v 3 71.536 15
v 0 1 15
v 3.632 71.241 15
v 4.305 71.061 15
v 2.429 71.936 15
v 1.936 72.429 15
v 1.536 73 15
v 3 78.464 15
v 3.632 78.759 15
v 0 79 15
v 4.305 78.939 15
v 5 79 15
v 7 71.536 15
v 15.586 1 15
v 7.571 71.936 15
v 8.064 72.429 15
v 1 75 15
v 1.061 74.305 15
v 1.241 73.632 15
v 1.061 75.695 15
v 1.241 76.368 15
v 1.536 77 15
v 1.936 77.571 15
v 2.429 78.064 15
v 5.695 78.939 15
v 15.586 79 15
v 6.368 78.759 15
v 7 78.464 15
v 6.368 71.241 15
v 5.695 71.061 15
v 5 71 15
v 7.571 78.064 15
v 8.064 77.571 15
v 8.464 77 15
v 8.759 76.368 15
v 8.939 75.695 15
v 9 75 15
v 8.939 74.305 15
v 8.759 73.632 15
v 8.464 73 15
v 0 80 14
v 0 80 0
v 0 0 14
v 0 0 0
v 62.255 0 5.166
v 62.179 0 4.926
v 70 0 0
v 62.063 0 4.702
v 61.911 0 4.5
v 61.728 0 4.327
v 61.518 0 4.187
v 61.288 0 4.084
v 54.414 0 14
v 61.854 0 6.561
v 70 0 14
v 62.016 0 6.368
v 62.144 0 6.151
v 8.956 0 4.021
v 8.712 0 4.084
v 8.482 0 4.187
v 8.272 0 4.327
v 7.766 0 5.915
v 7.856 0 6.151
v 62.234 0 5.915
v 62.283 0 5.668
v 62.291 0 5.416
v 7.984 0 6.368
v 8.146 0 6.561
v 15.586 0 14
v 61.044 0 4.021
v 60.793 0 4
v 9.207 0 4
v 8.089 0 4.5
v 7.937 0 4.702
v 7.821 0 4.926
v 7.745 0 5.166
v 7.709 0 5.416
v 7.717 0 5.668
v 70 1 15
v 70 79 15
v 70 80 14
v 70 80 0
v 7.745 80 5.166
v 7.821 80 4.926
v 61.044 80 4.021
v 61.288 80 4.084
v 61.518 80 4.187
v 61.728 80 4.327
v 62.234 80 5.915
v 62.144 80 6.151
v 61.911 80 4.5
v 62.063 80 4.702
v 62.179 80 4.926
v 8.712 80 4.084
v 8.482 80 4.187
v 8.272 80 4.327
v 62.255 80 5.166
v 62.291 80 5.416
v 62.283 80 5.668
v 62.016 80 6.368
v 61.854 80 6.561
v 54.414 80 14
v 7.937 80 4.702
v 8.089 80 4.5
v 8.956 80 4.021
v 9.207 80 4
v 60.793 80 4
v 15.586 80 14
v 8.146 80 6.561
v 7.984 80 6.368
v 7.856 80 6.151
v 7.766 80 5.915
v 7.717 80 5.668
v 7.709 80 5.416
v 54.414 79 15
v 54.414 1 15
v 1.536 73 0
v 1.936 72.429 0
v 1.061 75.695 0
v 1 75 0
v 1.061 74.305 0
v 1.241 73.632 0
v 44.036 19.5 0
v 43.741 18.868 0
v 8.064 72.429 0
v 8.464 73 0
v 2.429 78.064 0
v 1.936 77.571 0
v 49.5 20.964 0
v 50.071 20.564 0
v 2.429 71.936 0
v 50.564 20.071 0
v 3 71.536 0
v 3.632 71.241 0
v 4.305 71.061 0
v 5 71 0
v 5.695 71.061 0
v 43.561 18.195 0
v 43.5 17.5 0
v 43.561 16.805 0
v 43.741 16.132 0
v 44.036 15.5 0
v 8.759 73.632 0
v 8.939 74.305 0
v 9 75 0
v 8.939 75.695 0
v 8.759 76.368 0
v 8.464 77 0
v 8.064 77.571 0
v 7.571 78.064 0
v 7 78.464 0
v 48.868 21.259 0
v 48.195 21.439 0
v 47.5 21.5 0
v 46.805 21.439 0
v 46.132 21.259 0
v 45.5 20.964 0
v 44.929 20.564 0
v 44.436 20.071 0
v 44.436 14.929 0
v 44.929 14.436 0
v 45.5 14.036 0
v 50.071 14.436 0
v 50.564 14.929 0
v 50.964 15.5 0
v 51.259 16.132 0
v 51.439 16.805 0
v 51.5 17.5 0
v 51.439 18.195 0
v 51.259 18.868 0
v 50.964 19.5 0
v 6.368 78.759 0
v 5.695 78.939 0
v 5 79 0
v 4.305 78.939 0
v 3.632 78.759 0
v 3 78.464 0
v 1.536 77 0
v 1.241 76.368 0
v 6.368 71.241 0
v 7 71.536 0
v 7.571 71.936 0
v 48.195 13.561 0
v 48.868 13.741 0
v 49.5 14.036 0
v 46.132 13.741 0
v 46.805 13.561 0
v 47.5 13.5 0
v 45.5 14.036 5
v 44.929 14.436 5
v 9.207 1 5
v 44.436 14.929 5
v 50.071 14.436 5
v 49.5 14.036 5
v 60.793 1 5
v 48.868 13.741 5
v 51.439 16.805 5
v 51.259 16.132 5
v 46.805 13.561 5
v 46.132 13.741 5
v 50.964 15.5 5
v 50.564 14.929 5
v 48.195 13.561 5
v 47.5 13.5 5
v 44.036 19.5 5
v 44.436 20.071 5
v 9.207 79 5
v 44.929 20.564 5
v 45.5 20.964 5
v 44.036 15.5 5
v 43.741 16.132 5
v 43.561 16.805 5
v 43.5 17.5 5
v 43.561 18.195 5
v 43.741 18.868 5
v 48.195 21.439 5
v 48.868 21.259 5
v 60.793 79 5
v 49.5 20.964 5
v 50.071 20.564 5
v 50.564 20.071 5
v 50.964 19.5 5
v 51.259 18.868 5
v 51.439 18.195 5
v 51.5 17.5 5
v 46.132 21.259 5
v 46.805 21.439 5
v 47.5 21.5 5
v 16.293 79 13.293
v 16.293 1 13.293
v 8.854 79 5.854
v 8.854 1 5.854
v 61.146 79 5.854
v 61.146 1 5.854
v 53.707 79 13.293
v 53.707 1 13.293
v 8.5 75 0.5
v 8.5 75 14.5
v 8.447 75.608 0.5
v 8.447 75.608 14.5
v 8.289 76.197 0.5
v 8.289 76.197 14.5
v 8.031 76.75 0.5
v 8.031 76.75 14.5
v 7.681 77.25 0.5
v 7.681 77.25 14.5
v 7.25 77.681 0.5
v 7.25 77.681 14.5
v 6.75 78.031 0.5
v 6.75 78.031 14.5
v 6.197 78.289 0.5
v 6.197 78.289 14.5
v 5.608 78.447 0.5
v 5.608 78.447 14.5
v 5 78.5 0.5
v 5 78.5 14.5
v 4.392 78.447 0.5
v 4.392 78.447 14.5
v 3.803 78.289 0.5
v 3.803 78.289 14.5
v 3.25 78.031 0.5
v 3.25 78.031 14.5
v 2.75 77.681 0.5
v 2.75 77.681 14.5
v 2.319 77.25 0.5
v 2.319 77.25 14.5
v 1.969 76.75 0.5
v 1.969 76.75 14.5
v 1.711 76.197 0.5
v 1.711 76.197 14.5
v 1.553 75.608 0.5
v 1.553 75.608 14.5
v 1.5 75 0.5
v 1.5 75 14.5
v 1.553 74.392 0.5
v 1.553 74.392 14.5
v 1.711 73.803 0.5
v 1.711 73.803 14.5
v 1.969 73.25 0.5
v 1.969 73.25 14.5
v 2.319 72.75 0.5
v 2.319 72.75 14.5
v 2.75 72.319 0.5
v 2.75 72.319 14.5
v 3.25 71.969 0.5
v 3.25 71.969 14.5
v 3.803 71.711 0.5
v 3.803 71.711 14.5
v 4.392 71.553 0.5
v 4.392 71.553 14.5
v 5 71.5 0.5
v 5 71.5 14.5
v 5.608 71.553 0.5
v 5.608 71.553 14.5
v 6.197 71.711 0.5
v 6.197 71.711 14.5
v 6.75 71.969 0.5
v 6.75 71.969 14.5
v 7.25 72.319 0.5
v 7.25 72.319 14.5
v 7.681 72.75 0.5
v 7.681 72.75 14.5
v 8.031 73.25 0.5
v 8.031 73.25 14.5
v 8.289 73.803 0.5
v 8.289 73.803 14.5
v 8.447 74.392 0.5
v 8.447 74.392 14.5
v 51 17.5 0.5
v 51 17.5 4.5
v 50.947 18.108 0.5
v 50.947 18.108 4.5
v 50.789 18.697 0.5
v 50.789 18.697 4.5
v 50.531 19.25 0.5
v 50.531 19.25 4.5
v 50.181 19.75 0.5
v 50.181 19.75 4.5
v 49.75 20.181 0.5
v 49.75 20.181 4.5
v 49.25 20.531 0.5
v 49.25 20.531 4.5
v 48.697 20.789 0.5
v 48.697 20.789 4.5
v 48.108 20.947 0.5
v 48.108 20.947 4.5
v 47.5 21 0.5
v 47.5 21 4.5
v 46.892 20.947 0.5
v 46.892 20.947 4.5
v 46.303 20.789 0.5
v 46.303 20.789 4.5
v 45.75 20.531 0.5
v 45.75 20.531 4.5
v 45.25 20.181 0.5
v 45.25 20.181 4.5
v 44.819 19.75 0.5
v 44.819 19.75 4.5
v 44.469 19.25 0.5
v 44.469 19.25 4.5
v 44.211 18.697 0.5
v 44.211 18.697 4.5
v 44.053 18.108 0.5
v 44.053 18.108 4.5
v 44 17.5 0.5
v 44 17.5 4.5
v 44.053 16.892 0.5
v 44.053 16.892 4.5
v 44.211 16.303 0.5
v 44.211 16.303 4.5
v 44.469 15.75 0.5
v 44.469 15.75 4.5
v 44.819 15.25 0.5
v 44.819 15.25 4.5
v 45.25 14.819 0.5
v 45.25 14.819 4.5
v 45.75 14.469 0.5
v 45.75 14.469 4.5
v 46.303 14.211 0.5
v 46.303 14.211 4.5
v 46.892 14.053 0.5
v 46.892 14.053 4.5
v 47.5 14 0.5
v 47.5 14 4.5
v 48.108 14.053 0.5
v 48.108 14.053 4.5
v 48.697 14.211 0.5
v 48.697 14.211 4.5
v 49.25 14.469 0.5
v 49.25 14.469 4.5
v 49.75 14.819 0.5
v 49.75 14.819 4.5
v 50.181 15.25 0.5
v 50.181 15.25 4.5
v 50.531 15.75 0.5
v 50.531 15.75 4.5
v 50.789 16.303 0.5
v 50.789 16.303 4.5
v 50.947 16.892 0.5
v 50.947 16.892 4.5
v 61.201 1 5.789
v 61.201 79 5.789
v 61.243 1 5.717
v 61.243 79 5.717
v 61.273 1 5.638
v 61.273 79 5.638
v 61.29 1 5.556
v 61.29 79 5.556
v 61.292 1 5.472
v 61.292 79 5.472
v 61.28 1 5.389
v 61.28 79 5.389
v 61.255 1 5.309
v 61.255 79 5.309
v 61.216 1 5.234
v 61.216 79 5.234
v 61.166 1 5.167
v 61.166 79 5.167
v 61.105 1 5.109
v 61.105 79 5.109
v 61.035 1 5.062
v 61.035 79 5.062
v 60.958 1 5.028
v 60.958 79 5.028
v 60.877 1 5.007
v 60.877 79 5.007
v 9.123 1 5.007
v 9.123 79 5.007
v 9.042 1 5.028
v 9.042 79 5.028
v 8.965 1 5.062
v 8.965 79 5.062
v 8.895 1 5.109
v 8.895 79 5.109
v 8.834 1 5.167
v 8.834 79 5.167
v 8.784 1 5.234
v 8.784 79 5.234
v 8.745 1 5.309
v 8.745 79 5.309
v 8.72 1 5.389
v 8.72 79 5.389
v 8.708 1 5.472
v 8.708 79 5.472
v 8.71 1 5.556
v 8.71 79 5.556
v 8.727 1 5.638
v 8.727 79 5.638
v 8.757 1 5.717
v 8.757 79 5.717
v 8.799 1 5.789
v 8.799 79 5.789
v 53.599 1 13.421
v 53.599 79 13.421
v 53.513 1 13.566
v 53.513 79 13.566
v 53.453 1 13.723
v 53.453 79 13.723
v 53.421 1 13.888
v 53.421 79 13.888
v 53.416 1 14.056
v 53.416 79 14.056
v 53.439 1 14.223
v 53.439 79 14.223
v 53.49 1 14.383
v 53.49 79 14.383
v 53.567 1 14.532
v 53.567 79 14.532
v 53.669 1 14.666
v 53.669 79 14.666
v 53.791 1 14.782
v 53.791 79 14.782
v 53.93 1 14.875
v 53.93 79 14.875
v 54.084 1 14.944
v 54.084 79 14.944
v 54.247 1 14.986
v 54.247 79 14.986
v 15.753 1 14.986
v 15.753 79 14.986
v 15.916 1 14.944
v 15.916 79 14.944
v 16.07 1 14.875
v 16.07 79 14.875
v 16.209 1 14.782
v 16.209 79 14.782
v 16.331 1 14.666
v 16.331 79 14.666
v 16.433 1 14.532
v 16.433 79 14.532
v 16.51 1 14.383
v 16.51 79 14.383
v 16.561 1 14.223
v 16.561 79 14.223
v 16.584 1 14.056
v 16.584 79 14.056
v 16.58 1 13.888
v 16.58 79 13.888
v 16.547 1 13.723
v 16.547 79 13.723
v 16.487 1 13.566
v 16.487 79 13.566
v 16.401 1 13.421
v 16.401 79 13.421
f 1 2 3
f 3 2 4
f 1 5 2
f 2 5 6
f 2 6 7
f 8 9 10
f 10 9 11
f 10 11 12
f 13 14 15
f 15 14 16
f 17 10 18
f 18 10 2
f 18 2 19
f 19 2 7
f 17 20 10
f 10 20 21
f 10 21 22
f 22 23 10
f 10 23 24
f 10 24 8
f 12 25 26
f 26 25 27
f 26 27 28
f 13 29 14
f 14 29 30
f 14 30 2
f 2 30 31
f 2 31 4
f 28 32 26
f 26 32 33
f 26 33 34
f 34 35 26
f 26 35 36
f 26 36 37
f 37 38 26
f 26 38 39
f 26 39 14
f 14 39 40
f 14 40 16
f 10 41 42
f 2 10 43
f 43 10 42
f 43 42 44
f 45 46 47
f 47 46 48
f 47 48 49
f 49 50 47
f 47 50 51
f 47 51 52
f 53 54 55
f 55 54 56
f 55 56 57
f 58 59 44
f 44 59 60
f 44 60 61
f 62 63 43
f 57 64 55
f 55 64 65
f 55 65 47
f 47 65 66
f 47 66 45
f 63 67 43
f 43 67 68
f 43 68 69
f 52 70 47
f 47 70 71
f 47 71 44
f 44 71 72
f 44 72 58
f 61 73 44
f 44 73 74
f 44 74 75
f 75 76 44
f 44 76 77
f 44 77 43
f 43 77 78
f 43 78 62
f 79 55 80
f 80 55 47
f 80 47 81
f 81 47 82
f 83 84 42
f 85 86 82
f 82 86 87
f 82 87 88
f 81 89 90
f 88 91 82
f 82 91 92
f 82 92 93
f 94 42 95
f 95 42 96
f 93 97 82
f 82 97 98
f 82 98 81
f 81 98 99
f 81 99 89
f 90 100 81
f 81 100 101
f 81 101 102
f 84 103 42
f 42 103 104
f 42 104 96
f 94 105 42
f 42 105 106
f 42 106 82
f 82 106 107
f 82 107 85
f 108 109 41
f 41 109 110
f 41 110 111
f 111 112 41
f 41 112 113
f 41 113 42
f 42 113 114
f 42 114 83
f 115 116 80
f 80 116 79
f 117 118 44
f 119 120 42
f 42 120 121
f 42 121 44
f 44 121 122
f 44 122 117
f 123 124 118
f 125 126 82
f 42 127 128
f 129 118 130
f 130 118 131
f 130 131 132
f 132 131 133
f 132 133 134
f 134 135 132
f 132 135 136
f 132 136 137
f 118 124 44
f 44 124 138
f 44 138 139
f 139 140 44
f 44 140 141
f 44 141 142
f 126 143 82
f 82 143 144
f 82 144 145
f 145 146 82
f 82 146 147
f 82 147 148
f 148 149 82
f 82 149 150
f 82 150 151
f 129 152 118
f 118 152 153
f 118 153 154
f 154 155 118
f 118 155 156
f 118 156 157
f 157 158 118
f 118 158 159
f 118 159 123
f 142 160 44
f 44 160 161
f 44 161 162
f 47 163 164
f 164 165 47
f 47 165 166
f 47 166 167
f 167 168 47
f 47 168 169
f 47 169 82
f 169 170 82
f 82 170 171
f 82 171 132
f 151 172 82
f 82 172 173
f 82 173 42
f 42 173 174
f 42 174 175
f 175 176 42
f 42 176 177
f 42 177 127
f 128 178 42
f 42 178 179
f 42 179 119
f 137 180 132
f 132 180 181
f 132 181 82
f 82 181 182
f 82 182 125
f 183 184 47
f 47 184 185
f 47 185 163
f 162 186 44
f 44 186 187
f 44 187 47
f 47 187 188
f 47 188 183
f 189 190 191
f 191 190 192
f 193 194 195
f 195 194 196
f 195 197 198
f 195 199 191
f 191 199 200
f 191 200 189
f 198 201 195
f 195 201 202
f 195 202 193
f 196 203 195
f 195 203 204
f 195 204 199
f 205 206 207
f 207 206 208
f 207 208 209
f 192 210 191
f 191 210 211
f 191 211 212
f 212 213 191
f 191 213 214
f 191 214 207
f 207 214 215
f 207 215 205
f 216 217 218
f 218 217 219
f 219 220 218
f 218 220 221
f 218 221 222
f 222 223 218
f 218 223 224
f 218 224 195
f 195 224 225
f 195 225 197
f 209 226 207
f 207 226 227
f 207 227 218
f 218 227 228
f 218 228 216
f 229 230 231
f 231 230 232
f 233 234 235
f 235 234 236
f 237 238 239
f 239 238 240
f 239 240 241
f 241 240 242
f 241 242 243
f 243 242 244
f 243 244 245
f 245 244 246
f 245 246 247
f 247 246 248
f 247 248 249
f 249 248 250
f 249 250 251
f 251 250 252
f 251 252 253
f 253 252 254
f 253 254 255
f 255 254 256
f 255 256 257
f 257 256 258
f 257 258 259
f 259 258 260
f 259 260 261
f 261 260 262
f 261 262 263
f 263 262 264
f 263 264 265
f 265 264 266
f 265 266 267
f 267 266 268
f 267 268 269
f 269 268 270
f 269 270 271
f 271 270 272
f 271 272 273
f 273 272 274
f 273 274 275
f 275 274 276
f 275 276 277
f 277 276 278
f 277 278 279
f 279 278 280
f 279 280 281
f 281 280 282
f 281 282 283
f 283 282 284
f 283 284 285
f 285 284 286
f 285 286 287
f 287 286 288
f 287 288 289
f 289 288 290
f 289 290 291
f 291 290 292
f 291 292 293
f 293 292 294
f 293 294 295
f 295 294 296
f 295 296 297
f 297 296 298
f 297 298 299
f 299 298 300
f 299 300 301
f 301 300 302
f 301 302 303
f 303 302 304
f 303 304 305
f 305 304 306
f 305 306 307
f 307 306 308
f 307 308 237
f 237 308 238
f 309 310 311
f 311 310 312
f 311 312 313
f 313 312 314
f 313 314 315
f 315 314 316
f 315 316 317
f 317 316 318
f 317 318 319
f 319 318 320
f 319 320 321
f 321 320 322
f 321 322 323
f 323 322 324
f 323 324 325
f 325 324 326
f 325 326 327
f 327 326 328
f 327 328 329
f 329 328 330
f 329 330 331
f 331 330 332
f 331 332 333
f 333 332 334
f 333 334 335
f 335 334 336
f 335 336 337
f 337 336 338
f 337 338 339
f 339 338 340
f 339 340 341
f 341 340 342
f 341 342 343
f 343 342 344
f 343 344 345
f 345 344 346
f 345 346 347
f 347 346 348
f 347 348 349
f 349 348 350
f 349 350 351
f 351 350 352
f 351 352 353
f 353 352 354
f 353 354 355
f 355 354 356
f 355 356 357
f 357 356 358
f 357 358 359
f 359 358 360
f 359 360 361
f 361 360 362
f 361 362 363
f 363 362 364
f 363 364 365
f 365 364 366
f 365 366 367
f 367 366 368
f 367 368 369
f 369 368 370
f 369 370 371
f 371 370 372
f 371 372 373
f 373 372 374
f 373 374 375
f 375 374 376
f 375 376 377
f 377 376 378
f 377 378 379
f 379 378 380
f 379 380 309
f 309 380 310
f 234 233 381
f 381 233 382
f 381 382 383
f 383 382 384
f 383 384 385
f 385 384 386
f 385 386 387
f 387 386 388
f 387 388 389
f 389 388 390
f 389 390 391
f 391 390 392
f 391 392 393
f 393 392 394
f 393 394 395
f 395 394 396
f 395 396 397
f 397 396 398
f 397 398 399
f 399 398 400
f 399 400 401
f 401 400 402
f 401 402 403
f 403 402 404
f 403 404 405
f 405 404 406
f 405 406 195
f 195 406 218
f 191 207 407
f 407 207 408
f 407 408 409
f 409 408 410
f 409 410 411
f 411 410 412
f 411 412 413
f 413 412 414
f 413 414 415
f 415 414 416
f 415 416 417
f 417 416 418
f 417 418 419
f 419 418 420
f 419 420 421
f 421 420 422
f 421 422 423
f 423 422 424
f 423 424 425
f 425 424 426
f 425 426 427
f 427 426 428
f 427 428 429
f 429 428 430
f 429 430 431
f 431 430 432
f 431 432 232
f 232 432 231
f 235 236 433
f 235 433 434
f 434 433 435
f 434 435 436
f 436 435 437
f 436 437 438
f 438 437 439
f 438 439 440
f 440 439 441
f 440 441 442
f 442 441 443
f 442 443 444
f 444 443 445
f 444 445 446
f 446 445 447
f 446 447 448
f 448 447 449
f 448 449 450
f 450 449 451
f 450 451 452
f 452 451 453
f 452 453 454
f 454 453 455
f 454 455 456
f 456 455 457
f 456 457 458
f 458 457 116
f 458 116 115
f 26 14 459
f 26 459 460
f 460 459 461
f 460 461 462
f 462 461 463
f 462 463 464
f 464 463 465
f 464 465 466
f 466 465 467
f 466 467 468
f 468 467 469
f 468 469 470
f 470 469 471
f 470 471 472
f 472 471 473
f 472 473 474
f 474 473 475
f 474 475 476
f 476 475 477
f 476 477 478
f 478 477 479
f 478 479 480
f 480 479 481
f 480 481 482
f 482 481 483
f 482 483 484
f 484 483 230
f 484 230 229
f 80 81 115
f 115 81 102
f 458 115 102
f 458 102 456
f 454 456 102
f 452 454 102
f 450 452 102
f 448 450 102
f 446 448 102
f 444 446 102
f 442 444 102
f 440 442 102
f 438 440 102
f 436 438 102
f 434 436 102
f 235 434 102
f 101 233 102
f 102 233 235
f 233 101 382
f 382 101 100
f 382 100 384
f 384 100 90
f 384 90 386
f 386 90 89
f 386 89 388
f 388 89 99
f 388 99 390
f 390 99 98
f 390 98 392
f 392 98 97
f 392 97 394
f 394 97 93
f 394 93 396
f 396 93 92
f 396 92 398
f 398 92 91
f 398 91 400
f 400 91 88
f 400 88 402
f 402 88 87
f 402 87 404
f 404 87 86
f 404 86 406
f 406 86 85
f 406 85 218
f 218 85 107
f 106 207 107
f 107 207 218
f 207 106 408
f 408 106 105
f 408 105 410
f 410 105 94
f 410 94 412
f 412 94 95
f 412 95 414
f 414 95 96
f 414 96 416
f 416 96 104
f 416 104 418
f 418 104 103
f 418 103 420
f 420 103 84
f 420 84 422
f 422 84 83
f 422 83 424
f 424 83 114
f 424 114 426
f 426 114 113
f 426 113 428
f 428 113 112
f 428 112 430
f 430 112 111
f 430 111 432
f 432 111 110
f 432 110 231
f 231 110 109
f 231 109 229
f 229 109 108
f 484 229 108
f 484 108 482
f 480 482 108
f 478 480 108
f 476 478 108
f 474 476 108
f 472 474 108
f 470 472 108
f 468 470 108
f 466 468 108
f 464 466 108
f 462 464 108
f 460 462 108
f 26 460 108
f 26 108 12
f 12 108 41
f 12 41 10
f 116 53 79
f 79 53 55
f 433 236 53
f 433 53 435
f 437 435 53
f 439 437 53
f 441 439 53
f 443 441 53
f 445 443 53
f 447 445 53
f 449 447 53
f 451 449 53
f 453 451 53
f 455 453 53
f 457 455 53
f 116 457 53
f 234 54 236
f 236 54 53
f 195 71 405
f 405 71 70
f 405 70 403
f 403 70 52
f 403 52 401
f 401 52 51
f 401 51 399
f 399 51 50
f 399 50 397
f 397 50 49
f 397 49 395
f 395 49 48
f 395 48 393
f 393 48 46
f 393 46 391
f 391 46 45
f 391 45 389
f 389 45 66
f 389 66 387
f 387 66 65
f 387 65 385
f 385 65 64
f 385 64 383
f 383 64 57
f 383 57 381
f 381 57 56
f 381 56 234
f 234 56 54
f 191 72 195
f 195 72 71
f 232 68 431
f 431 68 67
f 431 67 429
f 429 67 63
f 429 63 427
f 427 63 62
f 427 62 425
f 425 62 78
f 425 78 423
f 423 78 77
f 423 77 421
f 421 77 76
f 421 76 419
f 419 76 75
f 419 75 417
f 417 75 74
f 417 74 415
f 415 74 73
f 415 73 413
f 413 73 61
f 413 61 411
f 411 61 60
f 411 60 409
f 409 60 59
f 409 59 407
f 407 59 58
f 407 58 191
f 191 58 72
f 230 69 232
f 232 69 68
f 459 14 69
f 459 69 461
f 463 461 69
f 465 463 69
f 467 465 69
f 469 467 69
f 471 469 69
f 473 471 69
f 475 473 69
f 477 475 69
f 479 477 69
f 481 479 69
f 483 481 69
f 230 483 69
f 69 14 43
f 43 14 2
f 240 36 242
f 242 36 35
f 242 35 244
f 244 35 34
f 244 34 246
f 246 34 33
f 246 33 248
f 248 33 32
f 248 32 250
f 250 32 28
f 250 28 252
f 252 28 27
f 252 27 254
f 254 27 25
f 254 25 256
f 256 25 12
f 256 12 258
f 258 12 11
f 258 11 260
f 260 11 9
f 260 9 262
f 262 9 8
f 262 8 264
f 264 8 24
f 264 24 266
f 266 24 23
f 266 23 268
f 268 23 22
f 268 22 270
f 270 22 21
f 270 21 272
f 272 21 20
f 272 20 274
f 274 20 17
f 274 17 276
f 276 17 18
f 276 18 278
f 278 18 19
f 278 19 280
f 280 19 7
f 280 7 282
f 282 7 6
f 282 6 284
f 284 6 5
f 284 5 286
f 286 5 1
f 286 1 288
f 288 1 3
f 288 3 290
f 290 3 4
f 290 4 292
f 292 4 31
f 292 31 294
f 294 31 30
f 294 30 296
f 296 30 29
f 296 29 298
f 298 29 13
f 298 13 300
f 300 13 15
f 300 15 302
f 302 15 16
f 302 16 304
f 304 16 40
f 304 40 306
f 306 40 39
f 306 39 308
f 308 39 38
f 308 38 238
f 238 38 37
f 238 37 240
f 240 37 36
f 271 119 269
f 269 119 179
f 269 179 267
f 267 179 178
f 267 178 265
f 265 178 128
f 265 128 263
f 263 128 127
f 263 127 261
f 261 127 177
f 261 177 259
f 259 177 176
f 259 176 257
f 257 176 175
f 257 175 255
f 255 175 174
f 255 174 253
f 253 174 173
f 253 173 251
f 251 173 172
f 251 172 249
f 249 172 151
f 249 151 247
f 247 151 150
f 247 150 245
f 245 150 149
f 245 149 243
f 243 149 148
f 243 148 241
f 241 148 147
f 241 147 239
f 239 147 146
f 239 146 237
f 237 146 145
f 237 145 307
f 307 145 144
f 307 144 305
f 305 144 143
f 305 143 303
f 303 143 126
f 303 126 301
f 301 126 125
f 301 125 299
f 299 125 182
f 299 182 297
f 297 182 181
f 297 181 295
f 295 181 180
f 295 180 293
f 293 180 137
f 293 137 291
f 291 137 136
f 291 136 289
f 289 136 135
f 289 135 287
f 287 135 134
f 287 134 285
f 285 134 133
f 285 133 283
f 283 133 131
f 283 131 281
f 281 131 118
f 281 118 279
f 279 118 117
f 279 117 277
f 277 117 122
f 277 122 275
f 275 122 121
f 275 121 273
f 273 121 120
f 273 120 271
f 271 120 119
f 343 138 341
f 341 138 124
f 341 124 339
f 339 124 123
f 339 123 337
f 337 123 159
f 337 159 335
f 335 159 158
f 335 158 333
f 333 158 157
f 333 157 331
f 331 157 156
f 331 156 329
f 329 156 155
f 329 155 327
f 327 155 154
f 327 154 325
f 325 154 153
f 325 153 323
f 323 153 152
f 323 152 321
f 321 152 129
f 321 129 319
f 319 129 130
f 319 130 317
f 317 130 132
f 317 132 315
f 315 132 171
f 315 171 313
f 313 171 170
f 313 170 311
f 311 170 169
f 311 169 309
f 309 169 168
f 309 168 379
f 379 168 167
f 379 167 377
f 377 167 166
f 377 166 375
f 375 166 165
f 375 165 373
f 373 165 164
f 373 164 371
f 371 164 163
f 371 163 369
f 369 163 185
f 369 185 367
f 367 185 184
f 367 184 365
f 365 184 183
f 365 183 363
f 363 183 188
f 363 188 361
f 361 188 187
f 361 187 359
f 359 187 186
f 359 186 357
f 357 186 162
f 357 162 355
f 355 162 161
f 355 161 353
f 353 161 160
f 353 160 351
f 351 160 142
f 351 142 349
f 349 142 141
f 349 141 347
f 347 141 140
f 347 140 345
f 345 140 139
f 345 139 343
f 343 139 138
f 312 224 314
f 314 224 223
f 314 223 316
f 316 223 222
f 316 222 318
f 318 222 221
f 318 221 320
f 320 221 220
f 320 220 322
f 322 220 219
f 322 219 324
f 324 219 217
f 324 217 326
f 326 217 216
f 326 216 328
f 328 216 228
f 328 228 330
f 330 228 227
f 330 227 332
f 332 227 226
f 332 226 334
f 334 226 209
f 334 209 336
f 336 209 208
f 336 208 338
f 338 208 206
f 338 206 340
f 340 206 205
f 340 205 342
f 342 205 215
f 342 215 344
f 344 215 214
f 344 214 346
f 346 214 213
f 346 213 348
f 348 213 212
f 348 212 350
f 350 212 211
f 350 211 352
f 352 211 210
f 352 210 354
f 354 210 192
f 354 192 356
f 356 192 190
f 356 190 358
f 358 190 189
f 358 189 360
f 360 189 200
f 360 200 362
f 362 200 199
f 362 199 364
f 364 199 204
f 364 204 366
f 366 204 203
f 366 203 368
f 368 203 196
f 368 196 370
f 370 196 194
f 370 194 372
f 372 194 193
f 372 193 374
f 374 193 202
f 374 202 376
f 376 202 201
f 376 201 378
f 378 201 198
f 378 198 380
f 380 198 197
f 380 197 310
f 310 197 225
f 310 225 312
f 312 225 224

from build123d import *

# Parameters (mm, degrees)
SKETCH1_W               = 70
SKETCH1_H               = 80
BOSS_EXTRUDE1_DEPTH     = 15
CUT_EXTRUDE1_DEPTH      = 108.354552768
SKETCH3_R               = 3.5
CUT_EXTRUDE2_DEPTH      = 108.354552768
CUT_EXTRUDE3_DEPTH      = 107.77078252
CUT_EXTRUDE3_DEPTH_BACK = 107.77078252
SKETCH4_R               = 3.5
FILLET1_R               = 0.5
FILLET2_R               = 1
CHAMFER1_SIZE           = 1
CHAMFER2_SIZE           = 0.5


with BuildPart() as part:
    # Sketch1 → Boss-Extrude1 (new body)
    with BuildSketch(Plane.XY):
        with Locations((35, 40)):
            Rectangle(SKETCH1_W, SKETCH1_H)
    extrude(amount=BOSS_EXTRUDE1_DEPTH)

    # Sketch2 → Cut-Extrude1 (cut, through all)
    with BuildSketch(Plane.XZ):
        Polygon((18, 15), (8, 5), (62, 5), (52, 15), align=None)
    extrude(amount=-CUT_EXTRUDE1_DEPTH, mode=Mode.SUBTRACT)

    # Sketch3 → Cut-Extrude2 (cut, through all)
    with BuildSketch(Plane.XY.offset(15)):
        with Locations((5, 75)):
            Circle(SKETCH3_R)
    extrude(amount=-CUT_EXTRUDE2_DEPTH, mode=Mode.SUBTRACT)

    # Sketch4 → Cut-Extrude3 (cut, two sides: drawn at the far end of the back side and taken through both)
    with BuildSketch(Plane.XY.offset(5).offset(-CUT_EXTRUDE3_DEPTH_BACK)):
        with Locations((47.5, 17.5)):
            Circle(SKETCH4_R)
    extrude(amount=CUT_EXTRUDE3_DEPTH + CUT_EXTRUDE3_DEPTH_BACK, mode=Mode.SUBTRACT)

    # Fillet1
    # the kernel refuses this fillet: 0.5 mm, written as the material it adds along each edge
    with BuildSketch(Plane(origin=(62, 0, 5), x_dir=(-0.7071067811865527, 0, 0.7071067811865425), z_dir=(0, 1, 0))) as fillet1_piece_1:
        with BuildLine():
            CenterArc((FILLET1_R * 2.41421356237, -FILLET1_R), FILLET1_R, 90, 135)
            Line((FILLET1_R * 1.70710678119, -FILLET1_R * 1.70710678119), (0, 0))
            Line((0, 0), (FILLET1_R * 2.41421356237, 0))
        make_face()
    extrude(amount=80)
    with BuildSketch(Plane(origin=(8, 73.785008685, 5), x_dir=(1, 0, 0), z_dir=(0, 1, 0))) as fillet1_piece_2_section:
        with BuildLine():
            CenterArc((FILLET1_R * 2.41421356237, -FILLET1_R), FILLET1_R, 90, 135)
            Line((FILLET1_R * 1.70710678119, -FILLET1_R * 1.70710678119), (0, 0))
            Line((0, 0), (FILLET1_R * 2.41421356237, 0))
        make_face()
    fillet1_piece_2 = extrude(amount=6.214991315, mode=Mode.PRIVATE)
    fillet1_piece_2 = fillet1_piece_2 - Plane(origin=(5, 75, 5.232830095), x_dir=(1, 0, 0), z_dir=(0, 0, 1)) * Cylinder(3.5, 18, mode=Mode.PRIVATE)
    add(fillet1_piece_2)
    with BuildSketch(Plane(origin=(8, 0, 5), x_dir=(1, 0, 0), z_dir=(0, 1, 0))) as fillet1_piece_3_section:
        with BuildLine():
            CenterArc((FILLET1_R * 2.41421356237, -FILLET1_R), FILLET1_R, 90, 135)
            Line((FILLET1_R * 1.70710678119, -FILLET1_R * 1.70710678119), (0, 0))
            Line((0, 0), (FILLET1_R * 2.41421356237, 0))
        make_face()
    fillet1_piece_3 = extrude(amount=76.214991315, mode=Mode.PRIVATE)
    fillet1_piece_3 = fillet1_piece_3 - Plane(origin=(5, 75, 5.222265381), x_dir=(1, 0, 0), z_dir=(0, 0, 1)) * Cylinder(3.5, 158, mode=Mode.PRIVATE)
    add(fillet1_piece_3)

    # Fillet2
    fillet2_edges = [part.edges().sort_by_distance(p)[0] for p in [
        (18, 40, 15),
        (52, 40, 15),
    ]]
    fillet(fillet2_edges, radius=FILLET2_R)

    # Chamfer1
    chamfer1_edges = [part.edges().sort_by_distance(p)[0] for p in [
        (62.207106781, 80, 15),
        (57.426776695, 0, 9.573223305),
        (57.426776695, 80, 9.573223305),
        (35, 0, 5),
        (35, 80, 5),
        (61.254832985, 0, 5.308658284),
        (61.254832985, 80, 5.308658284),
        (8.745167015, 0, 5.308658284),
        (8.745167015, 80, 5.308658284),
        (62.207106781, 0, 15),
        (12.573223305, 0, 9.573223305),
        (16.50966597, 0, 14.382683432),
        (53.49033403, 0, 14.382683432),
        (7.792893219, 80, 15),
        (12.573223305, 80, 9.573223305),
        (16.50966597, 80, 14.382683432),
        (53.49033403, 80, 14.382683432),
        (7.792893219, 0, 15),
    ]]
    chamfer(chamfer1_edges, length=CHAMFER1_SIZE)

    # Chamfer2
    # the kernel refuses this chamfer: 0.5 mm, written as the material it takes off along each edge
    with BuildSketch(Plane(origin=(5, 75, 0), x_dir=(1, 0, 0), z_dir=(0, -1, 0))) as chamfer2_piece_1:
        Polygon((3.5, CHAMFER2_SIZE), (3.5 + CHAMFER2_SIZE, 0), (3.5, 0), align=None)
    revolve(axis=Axis((5, 75, 0), (0, 0, 1)), mode=Mode.SUBTRACT)
    with BuildSketch(Plane(origin=(5, 75, 15), x_dir=(1, 0, 0), z_dir=(0, -1, 0))) as chamfer2_piece_2:
        Polygon((3.5 + CHAMFER2_SIZE, 0), (3.5, -CHAMFER2_SIZE), (3.5, 0), align=None)
    revolve(axis=Axis((5, 75, 15), (0, 0, 1)), mode=Mode.SUBTRACT)
    with BuildSketch(Plane(origin=(47.5, 17.5, 0), x_dir=(1, 0, 0), z_dir=(0, -1, 0))) as chamfer2_piece_3:
        Polygon((3.5 + CHAMFER2_SIZE, 0), (3.5, CHAMFER2_SIZE), (3.5, 0), align=None)
    revolve(axis=Axis((47.5, 17.5, 0), (0, 0, 1)), mode=Mode.SUBTRACT)
    with BuildSketch(Plane(origin=(47.5, 17.5, 5), x_dir=(1, 0, 0), z_dir=(0, -1, 0))) as chamfer2_piece_4:
        Polygon((3.5 + CHAMFER2_SIZE, 0), (3.5, -CHAMFER2_SIZE), (3.5, 0), align=None)
    revolve(axis=Axis((47.5, 17.5, 5), (0, 0, 1)), mode=Mode.SUBTRACT)


solid = part.part
